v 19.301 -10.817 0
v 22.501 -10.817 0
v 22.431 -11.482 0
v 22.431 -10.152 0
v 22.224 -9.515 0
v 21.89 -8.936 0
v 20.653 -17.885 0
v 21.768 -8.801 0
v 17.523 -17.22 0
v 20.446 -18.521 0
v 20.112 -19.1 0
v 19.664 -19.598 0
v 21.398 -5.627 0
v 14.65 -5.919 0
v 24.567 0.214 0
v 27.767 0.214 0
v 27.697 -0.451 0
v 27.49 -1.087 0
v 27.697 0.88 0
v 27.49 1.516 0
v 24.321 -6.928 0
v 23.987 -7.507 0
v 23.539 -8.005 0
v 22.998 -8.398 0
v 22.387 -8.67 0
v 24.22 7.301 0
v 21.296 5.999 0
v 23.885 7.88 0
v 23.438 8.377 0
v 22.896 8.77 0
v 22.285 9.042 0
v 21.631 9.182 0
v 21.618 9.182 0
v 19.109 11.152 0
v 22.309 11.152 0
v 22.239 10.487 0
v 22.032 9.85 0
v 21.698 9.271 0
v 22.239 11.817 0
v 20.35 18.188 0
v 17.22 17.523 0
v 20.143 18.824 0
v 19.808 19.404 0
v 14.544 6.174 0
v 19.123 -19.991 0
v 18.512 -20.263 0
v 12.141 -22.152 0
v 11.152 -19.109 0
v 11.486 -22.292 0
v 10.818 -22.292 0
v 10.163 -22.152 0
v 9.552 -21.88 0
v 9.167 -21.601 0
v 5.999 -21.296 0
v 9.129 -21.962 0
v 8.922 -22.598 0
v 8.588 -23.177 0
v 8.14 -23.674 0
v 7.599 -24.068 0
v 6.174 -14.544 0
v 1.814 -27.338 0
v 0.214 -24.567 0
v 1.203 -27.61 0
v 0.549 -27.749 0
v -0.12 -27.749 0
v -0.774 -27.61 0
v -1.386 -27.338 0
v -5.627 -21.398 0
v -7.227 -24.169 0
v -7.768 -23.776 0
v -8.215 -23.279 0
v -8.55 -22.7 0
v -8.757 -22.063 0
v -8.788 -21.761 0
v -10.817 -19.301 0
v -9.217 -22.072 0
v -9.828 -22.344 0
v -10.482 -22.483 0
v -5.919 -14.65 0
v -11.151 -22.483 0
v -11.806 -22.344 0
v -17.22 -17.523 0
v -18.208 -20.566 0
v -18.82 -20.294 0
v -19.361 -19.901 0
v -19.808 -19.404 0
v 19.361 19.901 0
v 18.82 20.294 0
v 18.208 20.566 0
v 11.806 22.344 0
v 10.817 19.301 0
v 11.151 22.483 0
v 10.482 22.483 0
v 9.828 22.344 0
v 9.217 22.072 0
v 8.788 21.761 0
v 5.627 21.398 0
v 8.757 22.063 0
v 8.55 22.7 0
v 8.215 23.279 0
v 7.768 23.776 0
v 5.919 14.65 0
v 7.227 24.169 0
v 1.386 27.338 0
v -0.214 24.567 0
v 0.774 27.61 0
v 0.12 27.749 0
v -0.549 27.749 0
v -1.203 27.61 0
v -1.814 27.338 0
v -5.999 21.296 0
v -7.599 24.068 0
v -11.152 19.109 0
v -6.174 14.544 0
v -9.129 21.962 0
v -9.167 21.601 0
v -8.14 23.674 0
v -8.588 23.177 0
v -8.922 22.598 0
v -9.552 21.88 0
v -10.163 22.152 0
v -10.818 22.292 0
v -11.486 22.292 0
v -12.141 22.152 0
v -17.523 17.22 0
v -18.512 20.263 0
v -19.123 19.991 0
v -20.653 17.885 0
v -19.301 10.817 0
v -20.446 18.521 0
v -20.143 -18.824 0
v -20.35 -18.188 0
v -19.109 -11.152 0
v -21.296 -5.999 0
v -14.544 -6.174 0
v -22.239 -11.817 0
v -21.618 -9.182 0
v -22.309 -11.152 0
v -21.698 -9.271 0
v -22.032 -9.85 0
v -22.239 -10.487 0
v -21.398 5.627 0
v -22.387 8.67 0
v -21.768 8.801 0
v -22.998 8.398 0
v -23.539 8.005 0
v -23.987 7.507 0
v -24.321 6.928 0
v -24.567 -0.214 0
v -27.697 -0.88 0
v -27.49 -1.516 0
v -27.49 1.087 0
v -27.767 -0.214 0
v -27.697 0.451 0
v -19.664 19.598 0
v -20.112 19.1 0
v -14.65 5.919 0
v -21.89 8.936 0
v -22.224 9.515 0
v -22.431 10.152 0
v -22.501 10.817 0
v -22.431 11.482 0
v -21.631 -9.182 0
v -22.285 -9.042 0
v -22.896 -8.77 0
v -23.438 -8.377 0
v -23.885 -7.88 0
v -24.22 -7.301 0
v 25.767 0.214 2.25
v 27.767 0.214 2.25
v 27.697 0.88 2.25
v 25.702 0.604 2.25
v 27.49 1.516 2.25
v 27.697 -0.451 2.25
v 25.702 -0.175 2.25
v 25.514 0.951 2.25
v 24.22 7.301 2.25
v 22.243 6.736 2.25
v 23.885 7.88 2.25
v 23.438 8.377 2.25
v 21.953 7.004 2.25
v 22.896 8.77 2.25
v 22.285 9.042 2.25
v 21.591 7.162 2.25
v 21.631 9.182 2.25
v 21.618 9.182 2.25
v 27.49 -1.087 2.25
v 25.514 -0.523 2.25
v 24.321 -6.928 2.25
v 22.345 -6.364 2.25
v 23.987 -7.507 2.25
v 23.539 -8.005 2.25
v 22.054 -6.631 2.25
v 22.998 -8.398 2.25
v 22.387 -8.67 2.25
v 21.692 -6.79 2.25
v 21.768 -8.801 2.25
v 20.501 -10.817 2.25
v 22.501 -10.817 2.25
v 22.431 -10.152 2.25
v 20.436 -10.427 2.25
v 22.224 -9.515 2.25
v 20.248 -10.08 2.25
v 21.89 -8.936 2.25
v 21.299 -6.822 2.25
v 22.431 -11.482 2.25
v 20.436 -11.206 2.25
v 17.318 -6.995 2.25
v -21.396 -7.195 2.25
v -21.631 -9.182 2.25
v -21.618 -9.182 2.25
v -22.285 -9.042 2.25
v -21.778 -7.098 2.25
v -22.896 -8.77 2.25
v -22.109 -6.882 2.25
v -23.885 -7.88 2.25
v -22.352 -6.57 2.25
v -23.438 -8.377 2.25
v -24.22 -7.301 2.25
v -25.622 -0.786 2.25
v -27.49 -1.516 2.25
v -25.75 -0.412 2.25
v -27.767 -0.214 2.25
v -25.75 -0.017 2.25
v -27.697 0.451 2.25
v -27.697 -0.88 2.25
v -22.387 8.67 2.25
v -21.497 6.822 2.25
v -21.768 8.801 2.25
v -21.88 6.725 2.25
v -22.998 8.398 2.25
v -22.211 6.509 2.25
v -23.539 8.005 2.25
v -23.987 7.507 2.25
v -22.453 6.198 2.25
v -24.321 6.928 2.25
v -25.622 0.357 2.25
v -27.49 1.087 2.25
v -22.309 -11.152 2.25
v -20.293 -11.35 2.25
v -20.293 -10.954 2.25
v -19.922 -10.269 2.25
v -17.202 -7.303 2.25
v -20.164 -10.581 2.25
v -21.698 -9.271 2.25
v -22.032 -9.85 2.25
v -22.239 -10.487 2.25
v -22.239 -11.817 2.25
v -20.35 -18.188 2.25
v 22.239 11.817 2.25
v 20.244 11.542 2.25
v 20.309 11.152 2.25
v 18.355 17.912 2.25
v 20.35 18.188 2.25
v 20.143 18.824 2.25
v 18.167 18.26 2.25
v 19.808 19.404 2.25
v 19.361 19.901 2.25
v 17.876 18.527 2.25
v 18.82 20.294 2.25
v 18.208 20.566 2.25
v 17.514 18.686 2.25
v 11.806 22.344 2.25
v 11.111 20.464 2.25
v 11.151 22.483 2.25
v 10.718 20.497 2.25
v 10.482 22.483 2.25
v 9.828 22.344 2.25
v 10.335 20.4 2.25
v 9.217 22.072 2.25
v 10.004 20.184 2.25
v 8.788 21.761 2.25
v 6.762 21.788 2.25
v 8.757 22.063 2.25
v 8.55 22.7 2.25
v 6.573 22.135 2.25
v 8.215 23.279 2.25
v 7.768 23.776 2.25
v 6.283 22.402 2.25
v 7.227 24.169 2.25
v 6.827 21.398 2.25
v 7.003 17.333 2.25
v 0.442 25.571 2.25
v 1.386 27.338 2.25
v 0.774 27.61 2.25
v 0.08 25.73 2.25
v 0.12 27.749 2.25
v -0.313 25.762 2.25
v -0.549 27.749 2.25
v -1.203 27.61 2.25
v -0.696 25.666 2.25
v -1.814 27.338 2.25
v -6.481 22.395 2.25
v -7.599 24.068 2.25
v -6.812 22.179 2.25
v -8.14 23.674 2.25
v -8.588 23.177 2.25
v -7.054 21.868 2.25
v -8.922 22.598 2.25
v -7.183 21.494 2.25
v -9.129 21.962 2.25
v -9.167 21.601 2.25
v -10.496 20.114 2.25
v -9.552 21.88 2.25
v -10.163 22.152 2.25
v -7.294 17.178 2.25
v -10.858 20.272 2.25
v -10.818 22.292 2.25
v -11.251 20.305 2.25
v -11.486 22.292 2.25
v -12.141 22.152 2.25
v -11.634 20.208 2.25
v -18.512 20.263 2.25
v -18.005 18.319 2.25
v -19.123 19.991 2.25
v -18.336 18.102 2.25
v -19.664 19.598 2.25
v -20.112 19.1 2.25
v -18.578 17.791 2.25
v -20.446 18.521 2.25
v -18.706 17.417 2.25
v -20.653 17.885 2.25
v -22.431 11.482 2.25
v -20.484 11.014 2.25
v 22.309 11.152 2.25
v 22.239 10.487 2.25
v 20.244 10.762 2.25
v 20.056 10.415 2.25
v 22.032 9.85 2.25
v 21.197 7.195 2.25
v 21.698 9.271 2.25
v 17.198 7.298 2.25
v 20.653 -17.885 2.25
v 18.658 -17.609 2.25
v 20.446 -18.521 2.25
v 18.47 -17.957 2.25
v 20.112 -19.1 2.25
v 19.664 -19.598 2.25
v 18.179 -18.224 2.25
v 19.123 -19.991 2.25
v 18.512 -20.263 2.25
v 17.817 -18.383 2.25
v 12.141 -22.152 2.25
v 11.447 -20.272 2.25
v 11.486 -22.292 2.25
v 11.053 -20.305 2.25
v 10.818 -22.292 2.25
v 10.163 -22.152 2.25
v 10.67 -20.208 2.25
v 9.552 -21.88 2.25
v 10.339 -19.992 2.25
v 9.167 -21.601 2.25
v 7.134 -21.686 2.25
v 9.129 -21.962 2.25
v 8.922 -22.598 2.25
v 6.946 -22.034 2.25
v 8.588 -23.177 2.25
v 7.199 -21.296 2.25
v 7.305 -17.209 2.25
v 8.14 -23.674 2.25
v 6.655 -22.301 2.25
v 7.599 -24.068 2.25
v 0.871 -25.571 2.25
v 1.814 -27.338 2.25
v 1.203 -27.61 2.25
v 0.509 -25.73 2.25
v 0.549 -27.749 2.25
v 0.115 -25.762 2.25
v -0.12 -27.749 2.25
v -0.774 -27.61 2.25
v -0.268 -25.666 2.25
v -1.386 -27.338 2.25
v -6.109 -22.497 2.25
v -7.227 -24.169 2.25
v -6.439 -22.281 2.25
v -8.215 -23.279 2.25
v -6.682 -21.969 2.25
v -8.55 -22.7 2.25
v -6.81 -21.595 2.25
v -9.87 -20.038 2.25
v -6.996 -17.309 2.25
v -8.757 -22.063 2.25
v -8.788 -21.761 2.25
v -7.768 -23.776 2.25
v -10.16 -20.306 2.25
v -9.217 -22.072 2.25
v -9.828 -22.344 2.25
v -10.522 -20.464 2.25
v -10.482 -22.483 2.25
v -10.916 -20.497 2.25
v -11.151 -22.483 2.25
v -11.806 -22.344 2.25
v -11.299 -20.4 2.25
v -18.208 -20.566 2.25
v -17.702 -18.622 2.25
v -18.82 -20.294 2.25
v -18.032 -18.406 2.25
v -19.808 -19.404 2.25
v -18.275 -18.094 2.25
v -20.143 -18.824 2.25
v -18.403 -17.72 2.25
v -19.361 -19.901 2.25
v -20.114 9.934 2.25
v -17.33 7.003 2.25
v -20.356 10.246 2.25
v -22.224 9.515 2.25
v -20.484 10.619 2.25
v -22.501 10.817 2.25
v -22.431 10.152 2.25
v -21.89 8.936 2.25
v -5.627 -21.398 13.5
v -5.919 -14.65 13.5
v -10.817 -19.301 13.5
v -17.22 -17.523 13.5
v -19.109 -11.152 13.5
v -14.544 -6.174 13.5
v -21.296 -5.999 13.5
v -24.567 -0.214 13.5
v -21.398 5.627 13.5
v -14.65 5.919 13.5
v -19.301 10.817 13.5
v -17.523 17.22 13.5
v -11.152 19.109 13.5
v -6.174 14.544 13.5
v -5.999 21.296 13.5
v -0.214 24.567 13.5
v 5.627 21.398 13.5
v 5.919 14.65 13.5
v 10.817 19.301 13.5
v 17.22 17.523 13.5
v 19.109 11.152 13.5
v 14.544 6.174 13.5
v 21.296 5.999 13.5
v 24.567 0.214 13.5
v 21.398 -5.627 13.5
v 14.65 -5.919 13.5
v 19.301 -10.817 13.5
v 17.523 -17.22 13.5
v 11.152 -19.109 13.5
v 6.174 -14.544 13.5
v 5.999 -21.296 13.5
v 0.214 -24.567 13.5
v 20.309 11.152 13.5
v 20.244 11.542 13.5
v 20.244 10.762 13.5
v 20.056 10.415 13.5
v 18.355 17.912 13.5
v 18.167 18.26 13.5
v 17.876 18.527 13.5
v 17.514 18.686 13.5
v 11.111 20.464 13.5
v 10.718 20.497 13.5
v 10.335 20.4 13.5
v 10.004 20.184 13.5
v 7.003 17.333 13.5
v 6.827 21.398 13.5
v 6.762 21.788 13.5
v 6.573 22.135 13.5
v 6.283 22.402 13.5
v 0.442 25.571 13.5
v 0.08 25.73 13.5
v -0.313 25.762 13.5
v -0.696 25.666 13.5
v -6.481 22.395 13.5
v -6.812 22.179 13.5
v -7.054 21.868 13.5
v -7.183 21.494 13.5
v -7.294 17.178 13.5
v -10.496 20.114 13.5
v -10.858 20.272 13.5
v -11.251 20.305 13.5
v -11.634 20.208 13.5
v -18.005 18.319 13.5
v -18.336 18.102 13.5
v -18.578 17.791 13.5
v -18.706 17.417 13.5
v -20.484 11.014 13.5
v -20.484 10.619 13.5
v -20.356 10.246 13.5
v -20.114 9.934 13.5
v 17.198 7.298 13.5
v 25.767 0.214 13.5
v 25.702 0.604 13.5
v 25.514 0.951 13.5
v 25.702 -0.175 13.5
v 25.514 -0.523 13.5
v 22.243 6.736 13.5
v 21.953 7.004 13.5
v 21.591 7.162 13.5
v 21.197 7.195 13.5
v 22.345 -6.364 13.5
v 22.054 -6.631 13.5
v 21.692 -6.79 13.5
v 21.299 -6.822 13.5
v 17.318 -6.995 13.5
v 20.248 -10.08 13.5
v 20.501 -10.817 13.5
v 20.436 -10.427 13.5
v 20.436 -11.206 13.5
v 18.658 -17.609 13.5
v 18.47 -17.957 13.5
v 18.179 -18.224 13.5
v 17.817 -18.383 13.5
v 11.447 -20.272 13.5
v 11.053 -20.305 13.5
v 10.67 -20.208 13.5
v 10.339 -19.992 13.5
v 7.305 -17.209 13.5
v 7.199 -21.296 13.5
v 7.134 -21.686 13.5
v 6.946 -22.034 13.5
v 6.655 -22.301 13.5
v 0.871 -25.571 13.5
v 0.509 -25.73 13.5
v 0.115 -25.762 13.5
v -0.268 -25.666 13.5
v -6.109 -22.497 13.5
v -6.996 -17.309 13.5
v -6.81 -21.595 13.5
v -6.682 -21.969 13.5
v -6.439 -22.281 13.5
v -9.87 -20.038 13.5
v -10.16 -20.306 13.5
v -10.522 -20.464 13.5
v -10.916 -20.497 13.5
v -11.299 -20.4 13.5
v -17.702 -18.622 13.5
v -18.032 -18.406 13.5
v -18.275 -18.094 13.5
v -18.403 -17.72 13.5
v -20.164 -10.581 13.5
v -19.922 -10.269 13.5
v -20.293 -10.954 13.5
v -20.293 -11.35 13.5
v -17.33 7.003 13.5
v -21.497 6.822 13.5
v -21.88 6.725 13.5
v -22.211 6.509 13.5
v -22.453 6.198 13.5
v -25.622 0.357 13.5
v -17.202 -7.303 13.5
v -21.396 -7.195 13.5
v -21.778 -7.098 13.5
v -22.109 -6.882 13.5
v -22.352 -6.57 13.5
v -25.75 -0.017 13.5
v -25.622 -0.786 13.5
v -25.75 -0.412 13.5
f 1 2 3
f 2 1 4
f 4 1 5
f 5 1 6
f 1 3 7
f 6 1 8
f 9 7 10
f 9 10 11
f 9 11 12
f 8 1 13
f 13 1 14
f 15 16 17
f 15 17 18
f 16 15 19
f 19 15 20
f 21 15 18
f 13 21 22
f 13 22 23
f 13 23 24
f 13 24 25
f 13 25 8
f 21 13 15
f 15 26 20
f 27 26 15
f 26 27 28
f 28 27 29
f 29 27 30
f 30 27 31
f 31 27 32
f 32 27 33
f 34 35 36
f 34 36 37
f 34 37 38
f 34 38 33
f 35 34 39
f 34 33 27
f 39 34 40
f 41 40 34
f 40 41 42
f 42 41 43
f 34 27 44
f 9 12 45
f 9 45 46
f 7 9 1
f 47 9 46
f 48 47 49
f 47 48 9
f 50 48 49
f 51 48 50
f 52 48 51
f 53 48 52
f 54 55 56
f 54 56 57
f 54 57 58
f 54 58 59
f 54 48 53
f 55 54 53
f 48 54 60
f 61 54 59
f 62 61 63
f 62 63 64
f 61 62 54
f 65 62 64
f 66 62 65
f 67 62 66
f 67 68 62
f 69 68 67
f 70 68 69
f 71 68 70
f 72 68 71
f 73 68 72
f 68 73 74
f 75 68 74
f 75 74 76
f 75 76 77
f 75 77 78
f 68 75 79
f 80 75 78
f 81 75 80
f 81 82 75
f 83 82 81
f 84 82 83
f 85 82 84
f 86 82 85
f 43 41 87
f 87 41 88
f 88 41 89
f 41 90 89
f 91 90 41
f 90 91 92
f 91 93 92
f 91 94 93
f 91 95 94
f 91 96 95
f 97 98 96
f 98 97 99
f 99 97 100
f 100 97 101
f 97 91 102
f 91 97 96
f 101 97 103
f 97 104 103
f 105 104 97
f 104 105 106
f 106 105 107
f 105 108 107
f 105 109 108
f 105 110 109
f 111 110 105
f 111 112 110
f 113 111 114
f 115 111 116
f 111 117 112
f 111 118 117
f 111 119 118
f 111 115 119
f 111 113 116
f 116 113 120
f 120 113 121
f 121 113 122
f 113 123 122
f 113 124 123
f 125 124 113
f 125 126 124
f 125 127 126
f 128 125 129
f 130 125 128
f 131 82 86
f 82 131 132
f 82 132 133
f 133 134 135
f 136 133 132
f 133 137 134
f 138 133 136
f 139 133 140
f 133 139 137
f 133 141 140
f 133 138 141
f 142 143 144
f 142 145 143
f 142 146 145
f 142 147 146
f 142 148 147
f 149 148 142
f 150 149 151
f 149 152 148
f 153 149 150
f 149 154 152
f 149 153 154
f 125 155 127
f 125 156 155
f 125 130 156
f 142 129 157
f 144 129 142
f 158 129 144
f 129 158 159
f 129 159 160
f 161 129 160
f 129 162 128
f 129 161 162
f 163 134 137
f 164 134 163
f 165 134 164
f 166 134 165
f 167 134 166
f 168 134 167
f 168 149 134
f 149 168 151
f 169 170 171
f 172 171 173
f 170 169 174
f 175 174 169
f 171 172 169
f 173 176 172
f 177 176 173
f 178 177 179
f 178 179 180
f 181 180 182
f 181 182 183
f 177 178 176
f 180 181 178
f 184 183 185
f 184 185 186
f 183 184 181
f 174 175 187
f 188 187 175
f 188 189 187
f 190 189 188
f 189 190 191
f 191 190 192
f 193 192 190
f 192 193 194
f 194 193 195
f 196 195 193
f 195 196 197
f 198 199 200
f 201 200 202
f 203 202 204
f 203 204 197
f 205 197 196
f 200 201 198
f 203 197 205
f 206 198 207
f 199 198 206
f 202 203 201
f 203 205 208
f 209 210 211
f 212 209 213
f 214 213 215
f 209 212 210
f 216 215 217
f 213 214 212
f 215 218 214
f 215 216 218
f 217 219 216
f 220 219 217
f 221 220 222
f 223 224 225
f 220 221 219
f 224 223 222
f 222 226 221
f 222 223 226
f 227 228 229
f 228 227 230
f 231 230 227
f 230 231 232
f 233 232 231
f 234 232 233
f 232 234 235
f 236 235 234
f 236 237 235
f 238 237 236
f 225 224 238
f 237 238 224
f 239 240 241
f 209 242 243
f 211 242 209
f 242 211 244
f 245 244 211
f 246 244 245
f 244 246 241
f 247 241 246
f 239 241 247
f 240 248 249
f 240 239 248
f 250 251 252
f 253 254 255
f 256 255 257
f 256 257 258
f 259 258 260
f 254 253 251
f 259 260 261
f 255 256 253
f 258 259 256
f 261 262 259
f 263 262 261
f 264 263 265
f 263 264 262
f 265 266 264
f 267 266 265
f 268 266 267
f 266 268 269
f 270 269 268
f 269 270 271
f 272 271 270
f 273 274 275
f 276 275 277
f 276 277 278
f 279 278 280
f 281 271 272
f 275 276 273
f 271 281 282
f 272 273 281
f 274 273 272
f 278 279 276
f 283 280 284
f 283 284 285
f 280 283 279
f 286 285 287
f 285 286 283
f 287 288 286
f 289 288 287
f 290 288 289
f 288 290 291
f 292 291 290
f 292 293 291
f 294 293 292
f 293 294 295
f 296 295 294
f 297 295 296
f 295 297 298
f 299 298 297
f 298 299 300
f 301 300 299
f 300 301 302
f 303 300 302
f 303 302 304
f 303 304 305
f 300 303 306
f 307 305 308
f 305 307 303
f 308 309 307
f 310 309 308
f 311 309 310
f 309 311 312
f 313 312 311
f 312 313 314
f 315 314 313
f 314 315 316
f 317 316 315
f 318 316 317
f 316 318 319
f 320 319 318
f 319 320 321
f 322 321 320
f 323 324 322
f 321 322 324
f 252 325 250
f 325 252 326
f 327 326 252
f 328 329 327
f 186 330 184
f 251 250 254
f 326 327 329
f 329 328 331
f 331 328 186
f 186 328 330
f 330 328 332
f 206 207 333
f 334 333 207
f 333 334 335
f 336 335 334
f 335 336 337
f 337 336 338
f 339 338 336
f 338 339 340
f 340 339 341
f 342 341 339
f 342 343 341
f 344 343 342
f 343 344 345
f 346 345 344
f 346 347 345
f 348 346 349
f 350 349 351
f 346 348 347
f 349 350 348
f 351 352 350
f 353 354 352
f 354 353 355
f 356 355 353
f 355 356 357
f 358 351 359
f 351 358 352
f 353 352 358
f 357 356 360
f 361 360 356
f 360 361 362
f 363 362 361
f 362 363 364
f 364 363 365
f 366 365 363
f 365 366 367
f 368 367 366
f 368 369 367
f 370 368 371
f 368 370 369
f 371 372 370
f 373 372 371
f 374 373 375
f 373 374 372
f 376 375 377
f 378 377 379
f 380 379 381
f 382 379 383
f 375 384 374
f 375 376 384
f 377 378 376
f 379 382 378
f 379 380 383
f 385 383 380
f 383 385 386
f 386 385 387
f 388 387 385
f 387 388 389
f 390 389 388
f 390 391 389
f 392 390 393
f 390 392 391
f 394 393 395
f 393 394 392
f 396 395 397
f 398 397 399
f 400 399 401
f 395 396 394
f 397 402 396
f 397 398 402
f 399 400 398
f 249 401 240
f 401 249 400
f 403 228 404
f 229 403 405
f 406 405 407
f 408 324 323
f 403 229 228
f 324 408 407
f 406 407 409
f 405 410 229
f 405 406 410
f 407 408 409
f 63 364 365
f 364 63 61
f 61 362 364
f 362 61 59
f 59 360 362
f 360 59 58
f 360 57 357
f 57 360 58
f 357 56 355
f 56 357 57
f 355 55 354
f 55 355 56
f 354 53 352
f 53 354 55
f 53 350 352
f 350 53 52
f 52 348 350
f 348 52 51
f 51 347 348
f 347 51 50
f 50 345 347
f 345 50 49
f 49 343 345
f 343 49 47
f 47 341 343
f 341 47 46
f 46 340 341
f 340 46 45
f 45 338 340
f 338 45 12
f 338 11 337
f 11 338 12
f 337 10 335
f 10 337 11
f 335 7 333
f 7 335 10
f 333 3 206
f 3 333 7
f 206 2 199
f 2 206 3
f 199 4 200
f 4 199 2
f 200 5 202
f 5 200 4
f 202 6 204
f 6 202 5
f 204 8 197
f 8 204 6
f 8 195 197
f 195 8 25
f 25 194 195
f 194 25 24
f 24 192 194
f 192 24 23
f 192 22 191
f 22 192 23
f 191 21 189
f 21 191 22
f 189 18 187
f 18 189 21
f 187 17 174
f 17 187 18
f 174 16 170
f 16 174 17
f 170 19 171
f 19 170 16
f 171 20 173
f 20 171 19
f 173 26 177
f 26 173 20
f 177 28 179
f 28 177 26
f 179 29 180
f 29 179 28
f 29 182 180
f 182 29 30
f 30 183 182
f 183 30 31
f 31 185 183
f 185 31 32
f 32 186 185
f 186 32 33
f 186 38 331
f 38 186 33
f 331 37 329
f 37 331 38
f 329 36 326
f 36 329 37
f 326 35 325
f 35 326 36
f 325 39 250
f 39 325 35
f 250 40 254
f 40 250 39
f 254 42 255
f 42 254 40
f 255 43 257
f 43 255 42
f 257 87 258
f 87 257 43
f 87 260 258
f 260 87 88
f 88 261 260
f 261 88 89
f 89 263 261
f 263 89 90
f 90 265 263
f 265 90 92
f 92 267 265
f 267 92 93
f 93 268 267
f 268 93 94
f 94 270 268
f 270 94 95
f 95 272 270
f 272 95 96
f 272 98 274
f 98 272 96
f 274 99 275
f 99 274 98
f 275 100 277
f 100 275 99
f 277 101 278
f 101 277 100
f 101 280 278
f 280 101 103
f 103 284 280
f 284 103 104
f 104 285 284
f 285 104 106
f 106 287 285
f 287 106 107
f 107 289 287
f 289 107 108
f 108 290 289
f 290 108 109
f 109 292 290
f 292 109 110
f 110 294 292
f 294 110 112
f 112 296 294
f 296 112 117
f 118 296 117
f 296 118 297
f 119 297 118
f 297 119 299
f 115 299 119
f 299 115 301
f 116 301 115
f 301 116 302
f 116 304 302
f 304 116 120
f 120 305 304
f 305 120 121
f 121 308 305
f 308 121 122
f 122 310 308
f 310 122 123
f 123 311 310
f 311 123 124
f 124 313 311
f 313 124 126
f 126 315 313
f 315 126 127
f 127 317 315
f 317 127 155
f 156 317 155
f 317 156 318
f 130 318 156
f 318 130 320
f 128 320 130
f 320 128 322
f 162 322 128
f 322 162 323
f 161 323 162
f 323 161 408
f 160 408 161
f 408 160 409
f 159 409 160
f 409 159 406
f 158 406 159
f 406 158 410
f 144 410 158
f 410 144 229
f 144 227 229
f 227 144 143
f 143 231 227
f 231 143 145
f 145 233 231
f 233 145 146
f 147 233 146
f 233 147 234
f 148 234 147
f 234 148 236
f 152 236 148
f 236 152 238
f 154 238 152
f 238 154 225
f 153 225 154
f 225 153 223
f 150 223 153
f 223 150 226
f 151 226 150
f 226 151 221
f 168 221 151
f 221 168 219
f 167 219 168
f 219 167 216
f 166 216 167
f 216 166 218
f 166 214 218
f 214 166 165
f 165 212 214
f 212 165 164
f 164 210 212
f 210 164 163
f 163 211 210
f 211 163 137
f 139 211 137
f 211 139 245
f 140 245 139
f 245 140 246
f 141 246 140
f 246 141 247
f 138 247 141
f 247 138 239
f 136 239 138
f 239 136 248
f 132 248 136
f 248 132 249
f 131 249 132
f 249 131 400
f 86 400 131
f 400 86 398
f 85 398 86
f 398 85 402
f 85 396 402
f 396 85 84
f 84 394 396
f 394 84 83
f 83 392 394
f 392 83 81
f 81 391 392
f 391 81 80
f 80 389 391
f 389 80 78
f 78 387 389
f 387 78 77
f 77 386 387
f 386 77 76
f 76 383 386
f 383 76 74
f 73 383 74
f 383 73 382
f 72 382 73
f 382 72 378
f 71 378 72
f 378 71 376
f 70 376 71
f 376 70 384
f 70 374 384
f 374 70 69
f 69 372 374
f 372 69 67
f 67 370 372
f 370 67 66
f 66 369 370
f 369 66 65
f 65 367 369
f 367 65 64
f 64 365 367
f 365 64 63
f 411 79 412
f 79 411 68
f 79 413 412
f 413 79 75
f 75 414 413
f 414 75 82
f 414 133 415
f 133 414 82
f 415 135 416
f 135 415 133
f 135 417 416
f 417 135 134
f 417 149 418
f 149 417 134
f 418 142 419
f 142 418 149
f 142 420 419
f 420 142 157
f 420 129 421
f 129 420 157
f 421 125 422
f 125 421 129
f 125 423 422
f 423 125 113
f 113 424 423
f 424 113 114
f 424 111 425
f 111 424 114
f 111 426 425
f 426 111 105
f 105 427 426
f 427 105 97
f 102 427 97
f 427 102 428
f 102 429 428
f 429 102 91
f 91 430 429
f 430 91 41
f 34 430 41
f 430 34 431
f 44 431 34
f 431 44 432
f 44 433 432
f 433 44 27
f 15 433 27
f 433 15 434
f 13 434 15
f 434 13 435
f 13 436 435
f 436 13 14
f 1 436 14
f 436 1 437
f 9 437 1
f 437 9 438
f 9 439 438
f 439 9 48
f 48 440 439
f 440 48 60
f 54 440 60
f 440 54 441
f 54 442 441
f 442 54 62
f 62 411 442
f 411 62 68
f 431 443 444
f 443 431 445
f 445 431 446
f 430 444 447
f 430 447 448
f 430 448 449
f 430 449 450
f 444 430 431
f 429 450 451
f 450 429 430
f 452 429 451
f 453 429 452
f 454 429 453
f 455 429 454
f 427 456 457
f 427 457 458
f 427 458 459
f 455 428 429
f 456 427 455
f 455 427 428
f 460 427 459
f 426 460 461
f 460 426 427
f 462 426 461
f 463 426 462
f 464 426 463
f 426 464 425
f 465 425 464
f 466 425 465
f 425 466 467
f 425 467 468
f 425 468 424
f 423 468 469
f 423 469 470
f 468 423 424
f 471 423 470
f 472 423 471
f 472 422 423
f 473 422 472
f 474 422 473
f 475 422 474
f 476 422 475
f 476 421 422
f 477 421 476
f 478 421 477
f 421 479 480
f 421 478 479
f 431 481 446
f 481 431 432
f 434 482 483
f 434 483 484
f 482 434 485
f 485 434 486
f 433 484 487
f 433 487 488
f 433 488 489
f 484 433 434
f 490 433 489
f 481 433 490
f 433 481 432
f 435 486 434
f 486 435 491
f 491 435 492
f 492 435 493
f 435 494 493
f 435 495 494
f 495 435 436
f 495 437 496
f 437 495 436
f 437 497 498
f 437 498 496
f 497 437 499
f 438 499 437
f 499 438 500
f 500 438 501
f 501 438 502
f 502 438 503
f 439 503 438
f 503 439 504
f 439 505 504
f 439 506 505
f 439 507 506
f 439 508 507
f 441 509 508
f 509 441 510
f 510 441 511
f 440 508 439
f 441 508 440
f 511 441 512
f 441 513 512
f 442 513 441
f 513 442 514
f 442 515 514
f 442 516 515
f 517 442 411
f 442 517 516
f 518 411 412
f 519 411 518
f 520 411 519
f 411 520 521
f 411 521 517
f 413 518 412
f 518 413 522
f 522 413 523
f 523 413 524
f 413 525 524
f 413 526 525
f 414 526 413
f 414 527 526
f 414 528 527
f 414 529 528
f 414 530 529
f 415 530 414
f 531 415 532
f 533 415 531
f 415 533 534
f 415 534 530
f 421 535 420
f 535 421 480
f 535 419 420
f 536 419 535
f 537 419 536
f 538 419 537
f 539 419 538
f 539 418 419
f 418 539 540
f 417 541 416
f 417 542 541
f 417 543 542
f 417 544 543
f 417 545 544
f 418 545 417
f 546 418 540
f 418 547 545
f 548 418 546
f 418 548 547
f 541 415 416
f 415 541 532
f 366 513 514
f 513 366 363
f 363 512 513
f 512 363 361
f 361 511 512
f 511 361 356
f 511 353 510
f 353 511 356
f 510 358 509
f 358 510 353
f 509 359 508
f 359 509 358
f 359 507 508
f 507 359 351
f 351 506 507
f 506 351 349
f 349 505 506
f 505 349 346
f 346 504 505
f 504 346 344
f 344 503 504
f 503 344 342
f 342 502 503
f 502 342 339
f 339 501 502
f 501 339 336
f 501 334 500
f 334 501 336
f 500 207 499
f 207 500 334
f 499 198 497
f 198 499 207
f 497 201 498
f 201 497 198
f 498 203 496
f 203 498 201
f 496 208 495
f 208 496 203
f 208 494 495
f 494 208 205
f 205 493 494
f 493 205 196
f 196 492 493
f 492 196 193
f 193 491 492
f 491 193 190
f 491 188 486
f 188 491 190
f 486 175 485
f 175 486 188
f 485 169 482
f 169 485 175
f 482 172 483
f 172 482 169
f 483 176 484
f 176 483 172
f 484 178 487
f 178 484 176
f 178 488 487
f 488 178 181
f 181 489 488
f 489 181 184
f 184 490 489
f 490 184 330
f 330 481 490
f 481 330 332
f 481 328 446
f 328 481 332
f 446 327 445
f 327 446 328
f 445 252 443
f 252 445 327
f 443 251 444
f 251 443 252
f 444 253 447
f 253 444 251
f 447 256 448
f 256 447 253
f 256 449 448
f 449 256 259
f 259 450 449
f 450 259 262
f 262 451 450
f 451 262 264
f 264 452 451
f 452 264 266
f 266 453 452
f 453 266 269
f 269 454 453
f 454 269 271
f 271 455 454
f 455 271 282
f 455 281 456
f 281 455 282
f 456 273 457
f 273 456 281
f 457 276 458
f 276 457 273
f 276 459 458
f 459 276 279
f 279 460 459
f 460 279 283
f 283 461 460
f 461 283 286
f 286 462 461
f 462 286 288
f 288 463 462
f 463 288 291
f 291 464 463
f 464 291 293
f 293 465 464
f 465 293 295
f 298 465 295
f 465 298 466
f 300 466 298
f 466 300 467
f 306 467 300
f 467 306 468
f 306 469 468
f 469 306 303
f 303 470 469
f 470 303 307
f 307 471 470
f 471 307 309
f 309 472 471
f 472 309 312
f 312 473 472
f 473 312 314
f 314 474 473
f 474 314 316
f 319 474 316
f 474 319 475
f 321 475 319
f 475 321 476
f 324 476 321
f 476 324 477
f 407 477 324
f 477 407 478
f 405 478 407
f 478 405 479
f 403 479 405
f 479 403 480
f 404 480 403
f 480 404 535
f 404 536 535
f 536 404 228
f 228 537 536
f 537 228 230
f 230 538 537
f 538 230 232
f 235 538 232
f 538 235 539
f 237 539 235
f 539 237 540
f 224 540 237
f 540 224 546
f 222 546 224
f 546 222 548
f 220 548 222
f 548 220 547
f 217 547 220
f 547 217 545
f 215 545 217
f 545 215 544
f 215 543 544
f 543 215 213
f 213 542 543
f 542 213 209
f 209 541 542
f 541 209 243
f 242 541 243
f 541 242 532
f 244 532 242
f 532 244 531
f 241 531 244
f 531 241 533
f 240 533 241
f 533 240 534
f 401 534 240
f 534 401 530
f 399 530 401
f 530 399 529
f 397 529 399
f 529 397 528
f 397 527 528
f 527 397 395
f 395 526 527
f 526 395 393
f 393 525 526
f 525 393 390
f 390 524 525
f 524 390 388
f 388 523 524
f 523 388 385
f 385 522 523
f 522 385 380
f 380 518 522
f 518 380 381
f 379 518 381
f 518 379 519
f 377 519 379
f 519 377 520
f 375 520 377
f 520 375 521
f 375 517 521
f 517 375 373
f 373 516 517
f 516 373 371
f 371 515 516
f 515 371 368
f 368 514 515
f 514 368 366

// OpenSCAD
// file: Common.scad
module offset_shell(thickness = 0.1) {
  render() {
      difference() {
          minkowski() {
            children();
            circle(2* thickness, center=true);
          }
        children();
      }
   }
}

module cookie_cutter(handle_thickness=8, cutter_tickness=3, total_height=15) {
    union() {
        linear_extrude(height = total_height*(0.15), slices = 60) {
            scale([.2,.2,1]) {
              offset_shell(handle_thickness) {
                children();

              }
            }
        };
        linear_extrude(height = total_height*(0.9), slices = 60)
            translate([0,0,2])
            scale([.2,.2,1]) {
              offset_shell(cutter_tickness) {
                children();
            }
        };
    }
}

module rod_with_clipped_circle(square_d, circle_d, circle_placement) {
    difference() {
        square(square_d, center=true);
        translate(circle_placement) circle(circle_d, center=true);
    }
}

//module cookie_press(handle_thickness=2.5, cutter_tickness=1, total_height=10) {
//    union() {
//        cookie_cutter(handle_thickness, cutter_tickness, total_height);
//        translate([0,0,10]) children();
//    }
//}
//
//
// file: ../ComplexShapes.scad
include <BasicShapes.scad>

module HalfCylinder(r, h, e=1, center=false) {
    translate([0,0, center ? -h/2 : 0])difference(){
        cylinder(h,r,r);
        translate([0,-r,-e])cube([2*r,2*r,h+2*e]);
    }
}

module HalfCircle(r) {
    difference(){
        circle(r);
        translate([-r,-2*r,0]) square(2*r);
    }
}

// http://benjamin-engel.blogspot.com/2015/07/openscad-tips-and-tricks.html

module equilateral_triangle(h) {
    rotate([0,0,-30]) circle(r=h, $fn=3);
}

module Crescent(r, fatten_scale=1, curve_angle=0, rotate=0) {
    r_prime = r / fatten_scale;
    rotate([0,0,rotate]) difference() {
        circle(r_prime*1.1);
        translate([r_prime/4, curve_angle*r_prime/4, 0]) circle(r_prime*fatten_scale);
    }
}


module round_edges(r) {
    minkowski() {
        children();
        circle(r);
    };
}

module CrescentV2(outer_r, inner_r, r_shift, edge_rounding=2) {
    // Different way to construct ... rounded edges ...
   round_edges(edge_rounding) {
        difference() {
            circle(outer_r);
            translate(r_shift) circle(inner_r);
        };
    };
}


//module Arch(x,y,r) {
//    // http://kitwallace.co.uk/Blog/item/2013-01-28T17:59:00Z
//    union() {
//        intersection() {
//           translate([x,y,0]) circle(r);
//           translate([-x,y,0]) circle(r);
//        }
//        translate([0,y/2,0]) square(size=[2 * (r-x), y], center=true);
//    }
//}

module Arch(width, arc_height, strech_height=0) {
    // http://kitwallace.co.uk/Blog/item/2013-01-28T17:59:00Z
    r = arc_height;
    x = (width / 2) - r;
    y = arc_height + strech_height;
    union() {
        intersection() {
           translate([x,y,0]) circle(r);
           translate([-x,y,0]) circle(r);
        }
        translate([0,y/2,0]) square(size=[width, y], center=true);
    }
}
// file: ../BasicShapes.scad
module Star(points, outer, inner_defaulted=0) {
    inner = inner_defaulted == 0 ? 2 * outer  : inner_defaulted;
	// polar to cartesian: radius/angle to x/y
	function x(r, a) = r * cos(a);
	function y(r, a) = r * sin(a);
	
	// angular width of each pie slice of the star
	increment = 360/points;
	
	union() {
		for (p = [0 : points-1]) {
			
			// outer is outer point p
			// inner is inner point following p
			// next is next outer point following p

			assign(	
                x_outer = x(outer, increment * p),
                y_outer = y(outer, increment * p),
                x_inner = x(inner, (increment * p) + (increment/2)),
                y_inner = y(inner, (increment * p) + (increment/2)),
                x_next  = x(outer, increment * (p+1)),
                y_next  = y(outer, increment * (p+1))
            ) {
				polygon(
                    points = [
                        [x_outer, y_outer], 
                        [x_inner, y_inner],
                        [x_next, y_next], 
                        [0, 0]
                    ], 
                    paths  = [[0, 1, 2, 3]]
                );
			}
		}
	}
}

//https://github.com/openscad/MCAD/blob/master/shapes.scad
module Hexagon(size) {
  Star(3, size, size);
}

module Octagon(size) {
  Star(4, size, size);
}

module Decagon(size) {
  Star(5, size, size);
}

module Decagon(size) {
  Star(5, size, size);
}

module Dodecagon(size) {
  Star(6, size, size);
}
// main file
include <../BasicShapes.scad>
include <../ComplexShapes.scad>
include <Common.scad>

module OuterStars(count, star_points, star_size, distance_factor=1) {
    union() {
        for (p = [1 : count]) {
            // inplace_rotation = (p % 4 == 1) ? -18 : ( (p % 4 == 2) ? -18 : ( (p % 4 == 3) ? -18: -18));
            inplace_rotation = - 90 / star_points;
            rotate([0,0, (60 + p*360/count)+count])
                translate([0, -3.225*count*distance_factor])
                    rotate([0,0, inplace_rotation])
                        Star(star_points, star_size/2.1, star_size);
        }
    }
}

module EightFold(distance_factor=1) {
    difference() {
        rotate([0,0,90])Octagon(24.7);
        OuterStars(8, 5, 10.0, distance_factor=distance_factor);
    }
}

cookie_cutter() {
    scale([5,5,1]) EightFold();
}

// Attempt 1: Trying to manually outline ...

//module InnerFoldShell(shell_thickness) {
//   scale_factor = 1 + shell_thickness;
//   difference() {
//        scale([scale_factor,scale_factor,scale_factor])InnerFold();
//        InnerFold();
//   }
//}

//module EightFoldShell(shell_thickness) {
//   scale_factor = 1 + shell_thickness;
//   difference() {
//        scale([scale_factor,scale_factor,1])EightFold();
//        EightFold();
//   }
//}

//module EightFoldCookieCutter() {
//    union() {
//          linear_extrude(height = 75, slices = 60) {
//          scale([5, 5, 1])
//            intersection() {
//                EightFoldShell(0.3);
//                translate([0,0,0]) rotate([0,0,90]) Octagon(26.7);
//            }
//        }
//    }
//}

//EightFoldCookieCutter();
